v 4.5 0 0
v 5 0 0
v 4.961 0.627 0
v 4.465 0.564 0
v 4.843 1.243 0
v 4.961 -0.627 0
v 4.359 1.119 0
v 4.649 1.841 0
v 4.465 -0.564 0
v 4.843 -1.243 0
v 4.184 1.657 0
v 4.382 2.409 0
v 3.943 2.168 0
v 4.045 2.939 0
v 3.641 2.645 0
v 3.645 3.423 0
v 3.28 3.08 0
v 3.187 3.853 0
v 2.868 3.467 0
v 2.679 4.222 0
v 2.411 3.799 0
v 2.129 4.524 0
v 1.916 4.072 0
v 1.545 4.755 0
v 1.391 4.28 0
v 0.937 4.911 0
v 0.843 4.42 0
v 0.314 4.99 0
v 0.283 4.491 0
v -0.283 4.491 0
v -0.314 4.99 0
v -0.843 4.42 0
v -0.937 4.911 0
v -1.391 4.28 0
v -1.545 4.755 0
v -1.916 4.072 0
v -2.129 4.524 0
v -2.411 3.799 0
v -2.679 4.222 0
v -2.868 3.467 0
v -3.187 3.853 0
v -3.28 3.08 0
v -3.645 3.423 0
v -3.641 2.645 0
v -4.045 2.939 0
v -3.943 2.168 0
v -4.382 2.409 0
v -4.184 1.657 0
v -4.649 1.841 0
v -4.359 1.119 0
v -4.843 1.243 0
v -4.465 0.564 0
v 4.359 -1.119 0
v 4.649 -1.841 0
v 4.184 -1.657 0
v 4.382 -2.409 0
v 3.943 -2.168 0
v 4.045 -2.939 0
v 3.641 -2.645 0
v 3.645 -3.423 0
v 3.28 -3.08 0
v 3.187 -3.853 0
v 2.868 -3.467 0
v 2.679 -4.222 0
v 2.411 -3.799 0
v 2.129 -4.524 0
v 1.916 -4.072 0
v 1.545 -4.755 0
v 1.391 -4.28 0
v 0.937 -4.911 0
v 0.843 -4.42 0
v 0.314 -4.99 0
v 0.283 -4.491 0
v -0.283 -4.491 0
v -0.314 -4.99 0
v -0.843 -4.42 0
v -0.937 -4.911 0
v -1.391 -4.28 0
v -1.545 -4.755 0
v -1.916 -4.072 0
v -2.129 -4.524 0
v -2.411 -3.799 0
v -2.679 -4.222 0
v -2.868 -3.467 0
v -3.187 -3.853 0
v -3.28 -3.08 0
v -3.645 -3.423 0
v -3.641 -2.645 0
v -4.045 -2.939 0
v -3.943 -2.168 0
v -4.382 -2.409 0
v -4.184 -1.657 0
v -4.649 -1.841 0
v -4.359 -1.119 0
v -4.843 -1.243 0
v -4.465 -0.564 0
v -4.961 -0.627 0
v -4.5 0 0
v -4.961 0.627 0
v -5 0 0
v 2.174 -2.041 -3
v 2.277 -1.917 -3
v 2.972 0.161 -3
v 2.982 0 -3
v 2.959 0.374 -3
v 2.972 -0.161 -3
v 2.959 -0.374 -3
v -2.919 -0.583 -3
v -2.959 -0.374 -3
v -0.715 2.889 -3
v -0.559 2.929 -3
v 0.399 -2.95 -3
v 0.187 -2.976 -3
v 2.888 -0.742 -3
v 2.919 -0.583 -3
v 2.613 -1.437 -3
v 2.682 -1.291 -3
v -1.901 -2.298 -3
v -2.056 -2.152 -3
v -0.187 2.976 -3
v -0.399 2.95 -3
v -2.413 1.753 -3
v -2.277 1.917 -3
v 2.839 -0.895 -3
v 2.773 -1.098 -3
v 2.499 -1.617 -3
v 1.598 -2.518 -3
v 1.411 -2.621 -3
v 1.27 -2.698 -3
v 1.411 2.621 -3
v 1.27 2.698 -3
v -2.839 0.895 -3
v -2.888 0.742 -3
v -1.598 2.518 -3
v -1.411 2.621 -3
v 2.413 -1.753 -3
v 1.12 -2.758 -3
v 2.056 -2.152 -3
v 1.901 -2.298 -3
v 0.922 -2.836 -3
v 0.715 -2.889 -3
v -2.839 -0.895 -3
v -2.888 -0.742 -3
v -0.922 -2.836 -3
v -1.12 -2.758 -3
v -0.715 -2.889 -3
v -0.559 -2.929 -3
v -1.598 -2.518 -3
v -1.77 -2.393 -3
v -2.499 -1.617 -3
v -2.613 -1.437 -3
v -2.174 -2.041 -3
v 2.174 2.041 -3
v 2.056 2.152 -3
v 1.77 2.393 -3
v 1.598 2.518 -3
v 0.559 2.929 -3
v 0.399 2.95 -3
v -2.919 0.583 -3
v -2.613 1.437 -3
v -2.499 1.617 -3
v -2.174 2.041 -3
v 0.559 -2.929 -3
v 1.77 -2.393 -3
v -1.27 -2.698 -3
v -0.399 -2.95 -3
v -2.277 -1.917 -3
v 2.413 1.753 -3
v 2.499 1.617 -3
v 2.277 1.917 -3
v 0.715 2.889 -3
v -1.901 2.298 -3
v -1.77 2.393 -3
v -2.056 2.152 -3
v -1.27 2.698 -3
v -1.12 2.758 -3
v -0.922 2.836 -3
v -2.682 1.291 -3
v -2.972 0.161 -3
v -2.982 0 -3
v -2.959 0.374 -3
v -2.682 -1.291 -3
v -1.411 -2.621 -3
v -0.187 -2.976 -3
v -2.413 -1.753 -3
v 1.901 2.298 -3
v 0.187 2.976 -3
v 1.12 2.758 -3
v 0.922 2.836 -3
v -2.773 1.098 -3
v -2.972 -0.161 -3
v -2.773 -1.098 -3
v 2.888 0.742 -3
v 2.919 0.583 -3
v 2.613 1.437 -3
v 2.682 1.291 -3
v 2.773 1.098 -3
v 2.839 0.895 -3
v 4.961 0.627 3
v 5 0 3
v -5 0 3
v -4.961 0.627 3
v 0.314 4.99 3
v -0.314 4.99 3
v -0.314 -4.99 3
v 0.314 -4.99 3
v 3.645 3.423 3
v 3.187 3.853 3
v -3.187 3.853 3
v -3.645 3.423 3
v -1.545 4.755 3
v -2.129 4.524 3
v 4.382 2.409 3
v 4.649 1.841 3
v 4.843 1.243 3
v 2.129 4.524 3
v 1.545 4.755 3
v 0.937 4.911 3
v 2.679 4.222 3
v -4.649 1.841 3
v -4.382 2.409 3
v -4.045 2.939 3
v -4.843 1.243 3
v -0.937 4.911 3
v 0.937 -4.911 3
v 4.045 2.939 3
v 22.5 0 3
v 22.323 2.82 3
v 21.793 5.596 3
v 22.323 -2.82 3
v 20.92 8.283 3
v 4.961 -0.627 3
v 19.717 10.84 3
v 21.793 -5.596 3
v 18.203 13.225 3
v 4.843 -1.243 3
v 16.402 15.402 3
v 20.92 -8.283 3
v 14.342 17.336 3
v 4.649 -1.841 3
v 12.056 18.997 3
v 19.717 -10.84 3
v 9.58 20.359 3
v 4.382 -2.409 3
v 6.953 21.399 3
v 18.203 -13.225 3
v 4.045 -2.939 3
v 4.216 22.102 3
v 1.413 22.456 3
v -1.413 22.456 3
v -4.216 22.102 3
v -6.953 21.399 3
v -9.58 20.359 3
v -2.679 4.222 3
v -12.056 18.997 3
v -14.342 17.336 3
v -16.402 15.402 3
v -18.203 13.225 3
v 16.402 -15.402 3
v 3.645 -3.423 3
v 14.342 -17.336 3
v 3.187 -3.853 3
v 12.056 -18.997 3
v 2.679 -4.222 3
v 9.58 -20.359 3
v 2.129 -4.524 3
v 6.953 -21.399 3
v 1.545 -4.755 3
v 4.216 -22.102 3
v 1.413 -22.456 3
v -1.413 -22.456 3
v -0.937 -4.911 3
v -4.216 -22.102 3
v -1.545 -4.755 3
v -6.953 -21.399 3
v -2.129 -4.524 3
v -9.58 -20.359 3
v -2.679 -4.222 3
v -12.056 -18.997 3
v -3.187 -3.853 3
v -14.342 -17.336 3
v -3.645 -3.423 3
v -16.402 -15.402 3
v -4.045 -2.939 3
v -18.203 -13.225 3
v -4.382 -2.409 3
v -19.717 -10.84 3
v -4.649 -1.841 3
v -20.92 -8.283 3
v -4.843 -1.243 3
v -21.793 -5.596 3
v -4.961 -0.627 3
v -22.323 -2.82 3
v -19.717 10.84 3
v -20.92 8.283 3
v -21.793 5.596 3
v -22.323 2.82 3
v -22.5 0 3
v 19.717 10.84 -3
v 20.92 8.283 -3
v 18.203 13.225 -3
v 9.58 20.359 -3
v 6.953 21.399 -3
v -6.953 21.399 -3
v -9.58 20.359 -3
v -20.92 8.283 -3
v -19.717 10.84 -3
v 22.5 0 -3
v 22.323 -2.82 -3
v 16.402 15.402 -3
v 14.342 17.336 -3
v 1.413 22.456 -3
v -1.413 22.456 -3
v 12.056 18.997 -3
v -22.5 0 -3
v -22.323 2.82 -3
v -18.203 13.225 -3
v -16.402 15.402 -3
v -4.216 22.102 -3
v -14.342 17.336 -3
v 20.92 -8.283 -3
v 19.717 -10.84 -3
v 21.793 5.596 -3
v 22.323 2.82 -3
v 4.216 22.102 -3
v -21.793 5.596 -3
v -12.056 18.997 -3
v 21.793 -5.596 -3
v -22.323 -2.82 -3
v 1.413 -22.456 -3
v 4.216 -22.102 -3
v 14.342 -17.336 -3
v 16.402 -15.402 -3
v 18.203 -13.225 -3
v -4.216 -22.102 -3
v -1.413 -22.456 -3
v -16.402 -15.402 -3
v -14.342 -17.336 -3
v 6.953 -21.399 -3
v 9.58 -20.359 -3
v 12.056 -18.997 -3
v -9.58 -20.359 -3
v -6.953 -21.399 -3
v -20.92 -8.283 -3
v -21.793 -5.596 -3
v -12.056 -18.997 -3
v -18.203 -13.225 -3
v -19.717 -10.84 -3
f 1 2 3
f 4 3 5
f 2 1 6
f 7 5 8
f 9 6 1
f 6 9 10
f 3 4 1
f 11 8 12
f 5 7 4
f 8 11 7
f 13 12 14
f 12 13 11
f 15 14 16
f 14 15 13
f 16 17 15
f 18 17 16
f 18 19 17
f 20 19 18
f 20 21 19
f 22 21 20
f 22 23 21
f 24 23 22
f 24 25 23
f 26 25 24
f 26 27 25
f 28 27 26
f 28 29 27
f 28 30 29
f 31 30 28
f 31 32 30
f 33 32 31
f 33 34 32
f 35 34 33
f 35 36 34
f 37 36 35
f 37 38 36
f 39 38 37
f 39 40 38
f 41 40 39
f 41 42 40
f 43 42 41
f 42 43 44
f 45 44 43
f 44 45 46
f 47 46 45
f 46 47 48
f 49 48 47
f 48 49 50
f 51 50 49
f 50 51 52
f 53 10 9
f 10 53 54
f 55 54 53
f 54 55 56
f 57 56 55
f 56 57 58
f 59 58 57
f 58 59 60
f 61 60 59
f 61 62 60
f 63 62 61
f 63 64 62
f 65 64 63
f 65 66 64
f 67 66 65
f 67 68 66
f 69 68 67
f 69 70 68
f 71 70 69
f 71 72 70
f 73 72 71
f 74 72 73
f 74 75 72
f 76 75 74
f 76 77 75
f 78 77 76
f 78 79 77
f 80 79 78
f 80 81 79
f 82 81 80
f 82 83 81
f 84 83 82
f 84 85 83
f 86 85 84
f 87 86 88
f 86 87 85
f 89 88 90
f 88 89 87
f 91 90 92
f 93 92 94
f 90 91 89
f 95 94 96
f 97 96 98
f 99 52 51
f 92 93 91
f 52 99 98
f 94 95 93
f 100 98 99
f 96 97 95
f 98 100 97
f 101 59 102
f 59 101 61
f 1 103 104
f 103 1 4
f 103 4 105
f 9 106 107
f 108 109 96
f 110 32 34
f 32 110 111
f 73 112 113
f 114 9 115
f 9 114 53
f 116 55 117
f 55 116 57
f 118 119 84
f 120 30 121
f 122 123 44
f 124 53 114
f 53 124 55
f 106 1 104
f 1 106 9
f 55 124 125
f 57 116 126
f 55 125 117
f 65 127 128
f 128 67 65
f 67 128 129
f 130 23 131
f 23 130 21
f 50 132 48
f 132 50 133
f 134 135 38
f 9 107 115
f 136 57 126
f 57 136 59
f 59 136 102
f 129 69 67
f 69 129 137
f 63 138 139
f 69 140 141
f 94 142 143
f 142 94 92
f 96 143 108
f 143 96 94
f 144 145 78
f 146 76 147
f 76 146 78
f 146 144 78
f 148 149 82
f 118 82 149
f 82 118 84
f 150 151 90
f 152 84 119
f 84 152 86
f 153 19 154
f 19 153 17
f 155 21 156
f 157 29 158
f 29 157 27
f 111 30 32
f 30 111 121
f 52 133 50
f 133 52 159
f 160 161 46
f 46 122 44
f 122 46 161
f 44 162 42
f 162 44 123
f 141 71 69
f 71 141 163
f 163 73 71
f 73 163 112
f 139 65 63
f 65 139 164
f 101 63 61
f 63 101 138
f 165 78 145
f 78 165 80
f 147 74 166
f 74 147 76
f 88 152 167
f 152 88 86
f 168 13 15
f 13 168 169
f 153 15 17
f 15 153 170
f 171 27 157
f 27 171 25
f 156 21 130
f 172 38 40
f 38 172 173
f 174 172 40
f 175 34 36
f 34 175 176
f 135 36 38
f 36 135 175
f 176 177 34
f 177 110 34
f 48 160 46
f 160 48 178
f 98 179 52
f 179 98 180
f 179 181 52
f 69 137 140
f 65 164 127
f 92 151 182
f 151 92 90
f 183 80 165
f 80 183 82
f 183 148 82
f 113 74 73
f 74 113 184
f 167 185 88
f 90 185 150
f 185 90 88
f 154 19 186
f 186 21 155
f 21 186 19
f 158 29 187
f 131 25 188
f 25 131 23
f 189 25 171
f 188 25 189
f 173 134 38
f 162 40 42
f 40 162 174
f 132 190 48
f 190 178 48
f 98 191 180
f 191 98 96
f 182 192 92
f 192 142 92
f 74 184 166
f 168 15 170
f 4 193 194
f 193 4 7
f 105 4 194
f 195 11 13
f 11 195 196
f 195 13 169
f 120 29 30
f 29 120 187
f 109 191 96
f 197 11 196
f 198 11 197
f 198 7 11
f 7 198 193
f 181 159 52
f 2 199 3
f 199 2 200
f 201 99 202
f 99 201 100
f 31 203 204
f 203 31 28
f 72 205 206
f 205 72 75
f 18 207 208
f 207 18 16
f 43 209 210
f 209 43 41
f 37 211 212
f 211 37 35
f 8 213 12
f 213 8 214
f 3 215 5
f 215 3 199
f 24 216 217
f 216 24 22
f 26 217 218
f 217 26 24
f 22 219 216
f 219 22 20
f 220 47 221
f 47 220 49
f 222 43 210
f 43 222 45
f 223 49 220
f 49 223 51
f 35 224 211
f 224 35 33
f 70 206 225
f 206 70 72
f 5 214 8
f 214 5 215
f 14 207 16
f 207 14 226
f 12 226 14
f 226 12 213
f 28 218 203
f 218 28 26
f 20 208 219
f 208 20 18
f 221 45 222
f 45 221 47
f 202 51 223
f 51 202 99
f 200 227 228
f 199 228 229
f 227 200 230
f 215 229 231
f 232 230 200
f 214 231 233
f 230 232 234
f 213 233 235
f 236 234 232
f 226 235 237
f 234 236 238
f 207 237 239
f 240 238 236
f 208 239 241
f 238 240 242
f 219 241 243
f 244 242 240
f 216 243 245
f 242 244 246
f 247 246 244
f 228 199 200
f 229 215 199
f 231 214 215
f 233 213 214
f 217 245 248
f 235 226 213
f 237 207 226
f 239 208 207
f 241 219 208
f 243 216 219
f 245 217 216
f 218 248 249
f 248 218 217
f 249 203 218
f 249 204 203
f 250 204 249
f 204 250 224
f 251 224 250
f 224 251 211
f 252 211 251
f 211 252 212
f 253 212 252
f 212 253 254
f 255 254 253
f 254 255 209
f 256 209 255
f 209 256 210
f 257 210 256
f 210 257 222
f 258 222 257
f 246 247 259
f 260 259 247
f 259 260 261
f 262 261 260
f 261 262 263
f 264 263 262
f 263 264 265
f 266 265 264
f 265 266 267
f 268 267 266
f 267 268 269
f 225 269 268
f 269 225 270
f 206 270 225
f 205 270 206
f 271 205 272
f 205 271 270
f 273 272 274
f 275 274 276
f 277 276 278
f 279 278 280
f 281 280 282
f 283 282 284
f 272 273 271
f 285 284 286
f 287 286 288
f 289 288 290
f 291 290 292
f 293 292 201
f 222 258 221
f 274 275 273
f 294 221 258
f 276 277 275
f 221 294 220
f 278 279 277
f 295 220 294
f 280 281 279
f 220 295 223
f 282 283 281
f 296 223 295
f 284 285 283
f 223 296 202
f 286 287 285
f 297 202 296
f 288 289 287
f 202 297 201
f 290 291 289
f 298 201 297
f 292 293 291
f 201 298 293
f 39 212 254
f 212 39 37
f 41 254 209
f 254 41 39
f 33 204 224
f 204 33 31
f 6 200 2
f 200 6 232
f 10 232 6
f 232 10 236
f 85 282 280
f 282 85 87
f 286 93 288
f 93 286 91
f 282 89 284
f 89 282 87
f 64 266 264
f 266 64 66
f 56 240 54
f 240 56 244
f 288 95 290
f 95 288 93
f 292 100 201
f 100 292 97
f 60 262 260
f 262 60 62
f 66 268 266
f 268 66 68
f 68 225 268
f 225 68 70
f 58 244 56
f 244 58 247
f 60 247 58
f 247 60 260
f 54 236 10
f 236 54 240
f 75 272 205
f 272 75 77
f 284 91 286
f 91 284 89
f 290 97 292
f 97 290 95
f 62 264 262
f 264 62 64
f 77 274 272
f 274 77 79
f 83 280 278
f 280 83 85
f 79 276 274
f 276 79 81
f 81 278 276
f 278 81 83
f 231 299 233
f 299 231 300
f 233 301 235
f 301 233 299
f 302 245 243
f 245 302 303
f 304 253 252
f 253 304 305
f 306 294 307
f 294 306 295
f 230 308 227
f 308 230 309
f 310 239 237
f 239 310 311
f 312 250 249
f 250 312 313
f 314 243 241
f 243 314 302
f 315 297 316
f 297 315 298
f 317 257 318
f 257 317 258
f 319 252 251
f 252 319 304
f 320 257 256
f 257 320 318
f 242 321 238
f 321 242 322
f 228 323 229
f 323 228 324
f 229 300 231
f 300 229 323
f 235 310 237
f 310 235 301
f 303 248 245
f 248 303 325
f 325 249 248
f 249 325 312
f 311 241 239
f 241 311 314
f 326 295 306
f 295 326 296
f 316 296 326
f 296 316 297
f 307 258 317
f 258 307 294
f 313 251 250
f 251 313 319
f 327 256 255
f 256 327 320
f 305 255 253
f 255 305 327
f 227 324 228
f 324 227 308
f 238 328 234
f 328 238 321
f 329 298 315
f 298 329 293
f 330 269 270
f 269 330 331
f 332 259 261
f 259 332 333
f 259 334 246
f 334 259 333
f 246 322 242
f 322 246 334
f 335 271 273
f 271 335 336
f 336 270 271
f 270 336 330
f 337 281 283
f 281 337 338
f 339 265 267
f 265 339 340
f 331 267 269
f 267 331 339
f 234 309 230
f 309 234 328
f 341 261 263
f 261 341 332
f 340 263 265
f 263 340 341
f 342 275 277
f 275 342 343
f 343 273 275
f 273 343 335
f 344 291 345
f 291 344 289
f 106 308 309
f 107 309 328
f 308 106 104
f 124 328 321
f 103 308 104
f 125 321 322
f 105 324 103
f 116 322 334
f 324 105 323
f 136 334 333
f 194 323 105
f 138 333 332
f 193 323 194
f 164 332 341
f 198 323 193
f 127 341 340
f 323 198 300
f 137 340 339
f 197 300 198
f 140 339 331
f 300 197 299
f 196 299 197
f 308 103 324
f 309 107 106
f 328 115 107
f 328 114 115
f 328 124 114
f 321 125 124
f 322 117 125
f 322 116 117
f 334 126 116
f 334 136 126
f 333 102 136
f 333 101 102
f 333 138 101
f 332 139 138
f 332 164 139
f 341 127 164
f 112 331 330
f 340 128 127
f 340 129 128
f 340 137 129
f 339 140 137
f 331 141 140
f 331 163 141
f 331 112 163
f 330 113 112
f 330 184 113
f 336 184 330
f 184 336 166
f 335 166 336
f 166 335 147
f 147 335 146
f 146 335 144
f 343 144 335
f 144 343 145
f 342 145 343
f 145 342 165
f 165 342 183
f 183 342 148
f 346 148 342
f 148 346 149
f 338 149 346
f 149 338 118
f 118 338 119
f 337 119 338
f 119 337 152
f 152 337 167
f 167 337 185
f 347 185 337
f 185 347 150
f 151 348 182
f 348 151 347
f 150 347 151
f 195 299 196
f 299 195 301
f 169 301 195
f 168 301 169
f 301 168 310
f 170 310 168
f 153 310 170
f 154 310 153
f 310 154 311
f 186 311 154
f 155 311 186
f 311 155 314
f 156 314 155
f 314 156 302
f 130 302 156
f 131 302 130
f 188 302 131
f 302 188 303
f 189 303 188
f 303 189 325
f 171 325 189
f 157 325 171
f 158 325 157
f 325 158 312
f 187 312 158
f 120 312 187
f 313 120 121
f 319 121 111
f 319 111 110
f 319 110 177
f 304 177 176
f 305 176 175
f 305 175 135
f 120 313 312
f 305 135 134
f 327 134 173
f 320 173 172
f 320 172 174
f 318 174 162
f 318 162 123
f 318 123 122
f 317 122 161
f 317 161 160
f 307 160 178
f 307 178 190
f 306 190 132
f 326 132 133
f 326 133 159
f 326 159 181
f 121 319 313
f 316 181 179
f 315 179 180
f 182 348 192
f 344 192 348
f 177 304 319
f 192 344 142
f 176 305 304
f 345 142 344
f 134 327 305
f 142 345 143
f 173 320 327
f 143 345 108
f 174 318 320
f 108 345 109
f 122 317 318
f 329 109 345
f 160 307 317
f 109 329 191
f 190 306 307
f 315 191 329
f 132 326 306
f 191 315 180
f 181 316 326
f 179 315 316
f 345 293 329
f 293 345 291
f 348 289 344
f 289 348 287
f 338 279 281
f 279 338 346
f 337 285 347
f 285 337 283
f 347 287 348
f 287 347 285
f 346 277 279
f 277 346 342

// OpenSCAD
$fn = 50;


difference() {
	union() {
		translate(v = [0, 0, -3.0000000000]) {
			cylinder(h = 6, r = 22.5000000000);
		}
	}
	union() {
		translate(v = [0, 0, 0]) {
			rotate(a = [0, 0, 0]) {
				difference() {
					union() {
						translate(v = [0, 0, -6.0000000000]) {
							cylinder(h = 6, r = 2.2500000000);
						}
						translate(v = [0, 0, -4.2000000000]) {
							cylinder(h = 4.2000000000, r1 = 2.3750000000, r2 = 4.5000000000);
						}
						translate(v = [0, 0, -6.0000000000]) {
							cylinder(h = 6, r = 2.3750000000);
						}
						translate(v = [0, 0, -6.0000000000]) {
							cylinder(h = 6, r = 2.2500000000);
						}
					}
					union();
				}
			}
		}
		#cylinder(h = 3, r = 5.0000000000);
	}
}
